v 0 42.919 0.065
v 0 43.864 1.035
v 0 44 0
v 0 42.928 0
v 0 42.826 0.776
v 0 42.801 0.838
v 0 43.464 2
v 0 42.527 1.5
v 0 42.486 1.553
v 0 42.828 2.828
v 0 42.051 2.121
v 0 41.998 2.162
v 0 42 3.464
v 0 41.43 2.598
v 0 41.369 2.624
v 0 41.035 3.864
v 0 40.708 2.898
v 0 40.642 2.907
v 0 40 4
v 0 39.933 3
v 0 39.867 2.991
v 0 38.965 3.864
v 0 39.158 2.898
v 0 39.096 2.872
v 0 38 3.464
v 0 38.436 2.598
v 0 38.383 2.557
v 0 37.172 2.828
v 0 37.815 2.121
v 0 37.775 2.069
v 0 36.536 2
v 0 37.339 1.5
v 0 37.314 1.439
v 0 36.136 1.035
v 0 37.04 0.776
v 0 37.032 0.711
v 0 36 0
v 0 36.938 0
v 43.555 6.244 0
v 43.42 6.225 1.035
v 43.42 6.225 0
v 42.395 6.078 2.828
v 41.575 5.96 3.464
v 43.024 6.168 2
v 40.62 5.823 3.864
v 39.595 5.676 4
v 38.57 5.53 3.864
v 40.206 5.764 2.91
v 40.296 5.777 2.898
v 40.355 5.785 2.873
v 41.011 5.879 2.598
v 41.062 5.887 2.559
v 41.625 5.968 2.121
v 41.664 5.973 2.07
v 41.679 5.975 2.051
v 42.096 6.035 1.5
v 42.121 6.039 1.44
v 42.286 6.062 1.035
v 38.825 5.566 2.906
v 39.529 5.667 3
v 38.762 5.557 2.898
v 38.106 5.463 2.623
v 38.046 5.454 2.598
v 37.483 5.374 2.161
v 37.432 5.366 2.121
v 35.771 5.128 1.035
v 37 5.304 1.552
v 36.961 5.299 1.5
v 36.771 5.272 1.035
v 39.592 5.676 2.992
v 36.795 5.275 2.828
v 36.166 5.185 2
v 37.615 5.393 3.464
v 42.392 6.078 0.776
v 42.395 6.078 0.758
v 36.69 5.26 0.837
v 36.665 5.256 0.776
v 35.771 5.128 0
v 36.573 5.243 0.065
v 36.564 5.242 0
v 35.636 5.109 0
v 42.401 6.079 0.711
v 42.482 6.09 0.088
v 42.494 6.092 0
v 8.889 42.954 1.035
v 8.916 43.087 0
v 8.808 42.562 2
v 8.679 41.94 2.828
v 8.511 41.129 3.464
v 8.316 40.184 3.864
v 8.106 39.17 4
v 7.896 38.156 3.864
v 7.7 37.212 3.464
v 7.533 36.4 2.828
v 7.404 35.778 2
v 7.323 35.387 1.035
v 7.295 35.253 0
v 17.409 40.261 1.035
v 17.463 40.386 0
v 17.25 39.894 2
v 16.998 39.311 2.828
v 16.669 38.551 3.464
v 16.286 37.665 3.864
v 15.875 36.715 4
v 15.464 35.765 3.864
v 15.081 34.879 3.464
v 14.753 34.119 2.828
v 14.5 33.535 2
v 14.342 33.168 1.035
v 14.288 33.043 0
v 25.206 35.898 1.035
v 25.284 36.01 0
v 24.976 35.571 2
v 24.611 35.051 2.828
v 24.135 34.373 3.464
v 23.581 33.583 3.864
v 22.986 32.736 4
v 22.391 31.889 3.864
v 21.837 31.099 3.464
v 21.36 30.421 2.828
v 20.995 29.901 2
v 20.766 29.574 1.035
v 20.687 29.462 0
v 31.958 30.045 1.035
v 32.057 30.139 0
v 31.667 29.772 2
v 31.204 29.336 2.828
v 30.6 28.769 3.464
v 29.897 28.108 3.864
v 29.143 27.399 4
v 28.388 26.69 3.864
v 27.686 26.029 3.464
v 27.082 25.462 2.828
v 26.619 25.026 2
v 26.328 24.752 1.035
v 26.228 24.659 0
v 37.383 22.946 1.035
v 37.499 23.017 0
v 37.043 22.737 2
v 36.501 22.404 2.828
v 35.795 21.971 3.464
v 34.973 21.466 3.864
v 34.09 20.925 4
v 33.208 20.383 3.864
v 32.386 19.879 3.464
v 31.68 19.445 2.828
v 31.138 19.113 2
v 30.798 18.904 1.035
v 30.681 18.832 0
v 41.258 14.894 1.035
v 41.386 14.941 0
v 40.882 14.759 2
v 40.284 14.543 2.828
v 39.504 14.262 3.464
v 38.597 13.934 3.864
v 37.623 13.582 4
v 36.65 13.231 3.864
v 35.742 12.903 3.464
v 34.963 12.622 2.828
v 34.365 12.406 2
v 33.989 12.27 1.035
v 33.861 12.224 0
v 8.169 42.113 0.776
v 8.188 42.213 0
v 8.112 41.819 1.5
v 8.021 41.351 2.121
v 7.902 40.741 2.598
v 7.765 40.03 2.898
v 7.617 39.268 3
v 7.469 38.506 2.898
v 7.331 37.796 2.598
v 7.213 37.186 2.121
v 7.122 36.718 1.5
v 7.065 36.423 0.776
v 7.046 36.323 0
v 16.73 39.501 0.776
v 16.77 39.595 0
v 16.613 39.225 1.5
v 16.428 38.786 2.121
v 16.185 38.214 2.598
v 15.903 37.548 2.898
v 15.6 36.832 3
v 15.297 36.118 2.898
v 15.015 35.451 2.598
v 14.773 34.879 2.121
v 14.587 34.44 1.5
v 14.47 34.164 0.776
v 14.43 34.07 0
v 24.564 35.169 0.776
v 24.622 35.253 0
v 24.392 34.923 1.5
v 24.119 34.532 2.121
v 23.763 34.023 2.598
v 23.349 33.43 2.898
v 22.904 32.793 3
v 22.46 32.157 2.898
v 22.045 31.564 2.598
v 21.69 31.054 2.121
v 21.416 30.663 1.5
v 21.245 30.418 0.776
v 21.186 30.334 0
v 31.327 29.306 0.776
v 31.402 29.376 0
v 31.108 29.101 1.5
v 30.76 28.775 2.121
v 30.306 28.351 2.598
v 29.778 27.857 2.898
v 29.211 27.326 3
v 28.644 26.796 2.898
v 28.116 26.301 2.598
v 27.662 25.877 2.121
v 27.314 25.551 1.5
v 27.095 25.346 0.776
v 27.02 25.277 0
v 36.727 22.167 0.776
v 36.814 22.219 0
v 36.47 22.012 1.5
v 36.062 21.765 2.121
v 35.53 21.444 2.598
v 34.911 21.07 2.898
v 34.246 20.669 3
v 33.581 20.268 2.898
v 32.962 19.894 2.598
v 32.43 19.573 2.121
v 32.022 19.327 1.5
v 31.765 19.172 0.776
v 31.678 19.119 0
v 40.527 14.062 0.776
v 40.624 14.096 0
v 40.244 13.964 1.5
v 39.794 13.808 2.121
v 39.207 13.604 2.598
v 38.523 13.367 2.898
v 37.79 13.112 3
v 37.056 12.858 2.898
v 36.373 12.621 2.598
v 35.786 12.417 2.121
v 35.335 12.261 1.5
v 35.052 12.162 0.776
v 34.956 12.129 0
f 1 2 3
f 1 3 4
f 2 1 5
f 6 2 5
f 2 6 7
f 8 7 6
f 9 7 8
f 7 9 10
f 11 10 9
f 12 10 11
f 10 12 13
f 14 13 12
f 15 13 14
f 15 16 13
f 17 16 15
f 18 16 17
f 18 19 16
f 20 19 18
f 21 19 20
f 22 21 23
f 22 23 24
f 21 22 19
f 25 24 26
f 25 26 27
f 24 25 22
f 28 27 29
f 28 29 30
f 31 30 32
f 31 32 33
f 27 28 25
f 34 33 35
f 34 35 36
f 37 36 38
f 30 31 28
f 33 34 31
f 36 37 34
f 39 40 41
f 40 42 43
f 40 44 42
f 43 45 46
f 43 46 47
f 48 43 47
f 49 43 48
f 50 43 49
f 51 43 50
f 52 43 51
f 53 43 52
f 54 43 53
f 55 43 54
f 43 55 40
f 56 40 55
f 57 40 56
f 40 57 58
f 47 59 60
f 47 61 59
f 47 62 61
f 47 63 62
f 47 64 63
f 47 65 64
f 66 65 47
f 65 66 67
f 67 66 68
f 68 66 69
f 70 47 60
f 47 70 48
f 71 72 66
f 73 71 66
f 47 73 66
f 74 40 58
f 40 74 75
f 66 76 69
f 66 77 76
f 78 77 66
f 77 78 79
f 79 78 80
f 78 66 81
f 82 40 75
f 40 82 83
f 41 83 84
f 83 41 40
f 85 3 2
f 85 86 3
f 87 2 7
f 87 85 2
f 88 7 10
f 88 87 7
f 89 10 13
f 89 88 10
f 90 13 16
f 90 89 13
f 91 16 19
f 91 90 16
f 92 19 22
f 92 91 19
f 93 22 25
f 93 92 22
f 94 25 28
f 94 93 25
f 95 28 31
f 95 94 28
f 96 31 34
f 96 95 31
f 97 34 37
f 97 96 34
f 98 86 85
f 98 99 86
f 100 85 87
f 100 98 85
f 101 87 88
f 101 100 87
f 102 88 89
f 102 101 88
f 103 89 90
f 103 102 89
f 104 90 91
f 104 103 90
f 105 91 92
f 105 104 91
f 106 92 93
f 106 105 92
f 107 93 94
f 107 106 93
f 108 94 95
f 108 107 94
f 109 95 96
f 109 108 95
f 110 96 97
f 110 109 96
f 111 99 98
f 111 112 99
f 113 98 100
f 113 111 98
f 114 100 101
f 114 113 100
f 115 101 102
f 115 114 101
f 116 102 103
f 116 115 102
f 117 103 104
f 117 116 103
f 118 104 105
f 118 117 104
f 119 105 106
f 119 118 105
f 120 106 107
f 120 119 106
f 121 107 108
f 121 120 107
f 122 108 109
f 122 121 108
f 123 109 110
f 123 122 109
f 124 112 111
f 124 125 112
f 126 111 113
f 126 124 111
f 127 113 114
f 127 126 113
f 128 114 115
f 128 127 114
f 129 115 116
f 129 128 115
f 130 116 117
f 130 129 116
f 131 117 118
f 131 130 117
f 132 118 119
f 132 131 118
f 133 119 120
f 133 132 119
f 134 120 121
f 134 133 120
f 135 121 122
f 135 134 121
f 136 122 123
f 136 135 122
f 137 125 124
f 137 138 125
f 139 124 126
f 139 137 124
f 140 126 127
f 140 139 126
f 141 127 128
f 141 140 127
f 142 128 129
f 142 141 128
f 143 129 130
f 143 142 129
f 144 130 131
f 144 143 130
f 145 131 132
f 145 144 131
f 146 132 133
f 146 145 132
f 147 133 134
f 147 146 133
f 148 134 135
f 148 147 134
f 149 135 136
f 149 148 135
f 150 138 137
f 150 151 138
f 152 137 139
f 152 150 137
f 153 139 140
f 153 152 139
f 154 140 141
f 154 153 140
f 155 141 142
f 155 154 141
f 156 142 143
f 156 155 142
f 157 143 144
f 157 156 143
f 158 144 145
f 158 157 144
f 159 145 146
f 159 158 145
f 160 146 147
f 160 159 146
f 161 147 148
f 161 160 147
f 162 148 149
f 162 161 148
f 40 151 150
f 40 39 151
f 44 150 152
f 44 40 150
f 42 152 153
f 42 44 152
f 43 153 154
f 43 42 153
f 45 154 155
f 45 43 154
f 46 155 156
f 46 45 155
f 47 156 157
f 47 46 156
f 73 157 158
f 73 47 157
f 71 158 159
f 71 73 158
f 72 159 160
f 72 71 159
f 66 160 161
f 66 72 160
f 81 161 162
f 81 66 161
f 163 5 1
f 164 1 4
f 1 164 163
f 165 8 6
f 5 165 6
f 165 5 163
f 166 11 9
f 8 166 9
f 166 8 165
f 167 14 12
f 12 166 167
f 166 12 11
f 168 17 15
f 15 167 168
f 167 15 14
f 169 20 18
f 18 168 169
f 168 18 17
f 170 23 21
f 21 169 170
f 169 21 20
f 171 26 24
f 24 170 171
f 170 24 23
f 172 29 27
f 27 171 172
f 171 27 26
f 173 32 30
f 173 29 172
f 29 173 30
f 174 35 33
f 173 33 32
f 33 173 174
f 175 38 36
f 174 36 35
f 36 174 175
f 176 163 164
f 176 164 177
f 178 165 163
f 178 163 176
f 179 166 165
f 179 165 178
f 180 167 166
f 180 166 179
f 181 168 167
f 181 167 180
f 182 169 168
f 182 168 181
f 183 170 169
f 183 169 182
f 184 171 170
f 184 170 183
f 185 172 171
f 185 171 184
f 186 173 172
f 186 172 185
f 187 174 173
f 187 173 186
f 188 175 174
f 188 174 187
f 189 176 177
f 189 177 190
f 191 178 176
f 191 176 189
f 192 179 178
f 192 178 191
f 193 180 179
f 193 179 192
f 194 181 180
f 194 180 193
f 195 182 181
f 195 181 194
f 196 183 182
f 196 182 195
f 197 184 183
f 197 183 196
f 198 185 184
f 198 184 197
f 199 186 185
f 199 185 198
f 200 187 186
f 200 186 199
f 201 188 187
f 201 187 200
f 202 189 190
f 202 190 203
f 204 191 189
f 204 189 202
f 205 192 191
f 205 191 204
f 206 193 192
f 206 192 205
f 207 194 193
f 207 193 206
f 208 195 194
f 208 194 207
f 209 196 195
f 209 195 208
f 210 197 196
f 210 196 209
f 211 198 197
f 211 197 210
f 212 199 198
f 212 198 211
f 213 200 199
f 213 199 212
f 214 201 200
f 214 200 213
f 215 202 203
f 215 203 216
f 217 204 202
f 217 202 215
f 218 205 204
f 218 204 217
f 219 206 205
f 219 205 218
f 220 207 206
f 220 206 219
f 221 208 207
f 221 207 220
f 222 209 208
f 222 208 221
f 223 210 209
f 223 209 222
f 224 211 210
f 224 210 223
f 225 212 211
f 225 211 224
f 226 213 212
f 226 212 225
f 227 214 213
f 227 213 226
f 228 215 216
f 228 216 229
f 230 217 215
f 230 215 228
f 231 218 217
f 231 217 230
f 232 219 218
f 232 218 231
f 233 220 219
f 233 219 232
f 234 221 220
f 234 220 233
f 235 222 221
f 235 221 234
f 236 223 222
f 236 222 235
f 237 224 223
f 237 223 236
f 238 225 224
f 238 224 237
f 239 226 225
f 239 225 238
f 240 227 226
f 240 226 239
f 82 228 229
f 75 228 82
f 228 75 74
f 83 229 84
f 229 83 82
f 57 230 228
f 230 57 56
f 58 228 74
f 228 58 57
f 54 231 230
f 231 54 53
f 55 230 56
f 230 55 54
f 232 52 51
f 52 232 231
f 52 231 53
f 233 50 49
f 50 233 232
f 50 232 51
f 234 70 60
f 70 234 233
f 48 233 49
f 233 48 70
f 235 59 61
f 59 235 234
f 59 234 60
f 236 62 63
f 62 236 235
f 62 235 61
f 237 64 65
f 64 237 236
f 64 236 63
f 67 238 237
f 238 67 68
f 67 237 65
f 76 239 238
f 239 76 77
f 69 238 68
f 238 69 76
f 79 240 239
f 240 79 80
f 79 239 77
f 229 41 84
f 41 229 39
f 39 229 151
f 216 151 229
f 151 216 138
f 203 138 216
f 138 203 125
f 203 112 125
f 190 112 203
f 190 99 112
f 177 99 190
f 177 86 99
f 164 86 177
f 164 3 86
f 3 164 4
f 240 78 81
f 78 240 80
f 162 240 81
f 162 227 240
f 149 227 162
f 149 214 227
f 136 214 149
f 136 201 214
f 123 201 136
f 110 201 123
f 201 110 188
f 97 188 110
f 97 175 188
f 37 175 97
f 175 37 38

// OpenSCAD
// file: ../build_environments.scad
// build_environments.scad: modules to build level sections
//

module pool(diameter=10.0, wall_height=2.0, step_width=3.0, connections=[])
{
    difference() {
        union() {
        difference() {
            cylinder(h=0.5,r1=diameter+step_width,r2=diameter+step_width,$fn=48);
            translate([0,0,-0.1])
                cylinder(h=0.7,r1=diameter,r2=diameter,$fn=48);
        }
        difference() {
            cylinder(h=wall_height,r1=diameter+step_width+1.0,r2=diameter+step_width+1.0,$fn=48);
            translate([0,0,-0.1])
                cylinder(h=wall_height+0.2,r1=diameter+step_width,r2=diameter+step_width,$fn=48);
        }
        }
    
        for (c = connections)
        {
            rotate([0,90,0]) {
                angle = atan2(c[1],c[0]);
                rotate([-angle,0,0]) {
                    cylinder(h=diameter+5.0,r1=c[2],r2=c[2],$fn=48);
                }
            }
        }
    }
}

module straight(length=10.0, width=2.0, dy1=0.0, dy2=0.0, dz=0.0)
{
    dims = [0, 0, 0, 0, 0, (dz/length)];
    matrix = [
        [ 1, dims[0], dims[1], 0 ],
        [ dims[2], 1, dims[4], 0 ],
        [ dims[5], dims[3], 1, 0 ],
        [ 0, 0, 0, 1 ]
    ];
    multmatrix(matrix)
    difference() {
        translate([dy1,0,0])
        union() {
            rotate([0,90,0]) {
                difference() {
                    cylinder(h=(length-dy1-dy2),r1=width+1.0,r2=width+1.0,$fn=24);
                    translate([0,0,-0.1])
                        cylinder(h=(length-dy1-dy2+0.2),r1=width,r2=width,$fn=24);
                }
                difference() {
                    cylinder(h=1.0,r1=width+2.0,r2=width+2.0,$fn=24);
                    translate([0,0,-0.1])
                        cylinder(h=1.2,r1=width,r2=width,$fn=24);
                }
                translate([0,0,(length-dy1-dy2)-1.0]) {
                    difference() {
                        cylinder(h=1.0,r1=width+2.0,r2=width+2.0,$fn=24);
                        translate([0,0,-0.1])
                            cylinder(h=1.2,r1=width,r2=width,$fn=24);
                    }
                }
            }
        }
        translate([0,0,-(2*width+4.0)/2])
            cube([3*length,3*length,2*width+4.0],center=true);
    }
}

module curve(p0=[0,0], center=[0,0], dir=1, angle=0.0, width=2.0)
{
    radius = sqrt((p0[0]-center[0])*(p0[0]-center[0]) + (p0[1]-center[1])*(p0[1]-center[1]));
    if (dir == 0) {
        difference() {
            rotate([0,0,-90])
            difference() {
                rotate_extrude(angle = angle, convexity = 10, $fn=32)
                    translate([radius, 0, 0])
                        circle(r = width+1.0,$fn=24);
                rotate([0,0,-1.0])
                    rotate_extrude(angle = angle+2.0, convexity = 10, $fn=32)
                        translate([radius, 0, 0])
                            circle(r = width,$fn=24);
            }
            translate([0,0,-(2*width+4.0)/2])
                cube([5*radius,5*radius,2*width+4.0],center=true);
        }
    }
    else {
        difference() {
            rotate([0,0,90])
            difference() {
                rotate_extrude(angle = -angle, convexity = 10, $fn=32)
                    translate([radius, 0, 0])
                        circle(r = width+1.0,$fn=24);
                rotate([0,0,1.0])
                    rotate_extrude(angle = -angle-2.0, convexity = 10, $fn=32)
                        translate([radius, 0, 0])
                            circle(r = width,$fn=24);
            }
            translate([0,0,-(2*width+4.0)/2])
                cube([5*radius,5*radius,2*width+4.0],center=true);
        }
    }

}

// test pool
//pool(diameter=12.0000, wall_height=3.0000, step_width=3.0000, connections=[[0.0000,-26.0000,2.0000], [23.6074,0.0000,2.0000]]);

// test straight, slope
//straight(length=26.0000, width=2.0000, dy1=11.8322, dy2=6.7082, dz=0.0000);
//straight(length=29.1549, width=12.0000, dy1=0.0000, dy2=0.0000, dz=-15.0000);

// test curve
//curve(p0=[23.6074, 0.0000], center=[23.6074, 5.0000], dir=0, angle=60.1011, width=2.0000);
//curve(p0=[33.6426, 12.4219], center=[37.9771, 9.9295], dir=1, angle=120.4627, width=2.0000);
// main file
use <../build_environments.scad>;
curve(p0=[66.3590, -36.0437], center=[28.2058, -48.0576], dir=1, angle=81.8415, width=3.0000);
